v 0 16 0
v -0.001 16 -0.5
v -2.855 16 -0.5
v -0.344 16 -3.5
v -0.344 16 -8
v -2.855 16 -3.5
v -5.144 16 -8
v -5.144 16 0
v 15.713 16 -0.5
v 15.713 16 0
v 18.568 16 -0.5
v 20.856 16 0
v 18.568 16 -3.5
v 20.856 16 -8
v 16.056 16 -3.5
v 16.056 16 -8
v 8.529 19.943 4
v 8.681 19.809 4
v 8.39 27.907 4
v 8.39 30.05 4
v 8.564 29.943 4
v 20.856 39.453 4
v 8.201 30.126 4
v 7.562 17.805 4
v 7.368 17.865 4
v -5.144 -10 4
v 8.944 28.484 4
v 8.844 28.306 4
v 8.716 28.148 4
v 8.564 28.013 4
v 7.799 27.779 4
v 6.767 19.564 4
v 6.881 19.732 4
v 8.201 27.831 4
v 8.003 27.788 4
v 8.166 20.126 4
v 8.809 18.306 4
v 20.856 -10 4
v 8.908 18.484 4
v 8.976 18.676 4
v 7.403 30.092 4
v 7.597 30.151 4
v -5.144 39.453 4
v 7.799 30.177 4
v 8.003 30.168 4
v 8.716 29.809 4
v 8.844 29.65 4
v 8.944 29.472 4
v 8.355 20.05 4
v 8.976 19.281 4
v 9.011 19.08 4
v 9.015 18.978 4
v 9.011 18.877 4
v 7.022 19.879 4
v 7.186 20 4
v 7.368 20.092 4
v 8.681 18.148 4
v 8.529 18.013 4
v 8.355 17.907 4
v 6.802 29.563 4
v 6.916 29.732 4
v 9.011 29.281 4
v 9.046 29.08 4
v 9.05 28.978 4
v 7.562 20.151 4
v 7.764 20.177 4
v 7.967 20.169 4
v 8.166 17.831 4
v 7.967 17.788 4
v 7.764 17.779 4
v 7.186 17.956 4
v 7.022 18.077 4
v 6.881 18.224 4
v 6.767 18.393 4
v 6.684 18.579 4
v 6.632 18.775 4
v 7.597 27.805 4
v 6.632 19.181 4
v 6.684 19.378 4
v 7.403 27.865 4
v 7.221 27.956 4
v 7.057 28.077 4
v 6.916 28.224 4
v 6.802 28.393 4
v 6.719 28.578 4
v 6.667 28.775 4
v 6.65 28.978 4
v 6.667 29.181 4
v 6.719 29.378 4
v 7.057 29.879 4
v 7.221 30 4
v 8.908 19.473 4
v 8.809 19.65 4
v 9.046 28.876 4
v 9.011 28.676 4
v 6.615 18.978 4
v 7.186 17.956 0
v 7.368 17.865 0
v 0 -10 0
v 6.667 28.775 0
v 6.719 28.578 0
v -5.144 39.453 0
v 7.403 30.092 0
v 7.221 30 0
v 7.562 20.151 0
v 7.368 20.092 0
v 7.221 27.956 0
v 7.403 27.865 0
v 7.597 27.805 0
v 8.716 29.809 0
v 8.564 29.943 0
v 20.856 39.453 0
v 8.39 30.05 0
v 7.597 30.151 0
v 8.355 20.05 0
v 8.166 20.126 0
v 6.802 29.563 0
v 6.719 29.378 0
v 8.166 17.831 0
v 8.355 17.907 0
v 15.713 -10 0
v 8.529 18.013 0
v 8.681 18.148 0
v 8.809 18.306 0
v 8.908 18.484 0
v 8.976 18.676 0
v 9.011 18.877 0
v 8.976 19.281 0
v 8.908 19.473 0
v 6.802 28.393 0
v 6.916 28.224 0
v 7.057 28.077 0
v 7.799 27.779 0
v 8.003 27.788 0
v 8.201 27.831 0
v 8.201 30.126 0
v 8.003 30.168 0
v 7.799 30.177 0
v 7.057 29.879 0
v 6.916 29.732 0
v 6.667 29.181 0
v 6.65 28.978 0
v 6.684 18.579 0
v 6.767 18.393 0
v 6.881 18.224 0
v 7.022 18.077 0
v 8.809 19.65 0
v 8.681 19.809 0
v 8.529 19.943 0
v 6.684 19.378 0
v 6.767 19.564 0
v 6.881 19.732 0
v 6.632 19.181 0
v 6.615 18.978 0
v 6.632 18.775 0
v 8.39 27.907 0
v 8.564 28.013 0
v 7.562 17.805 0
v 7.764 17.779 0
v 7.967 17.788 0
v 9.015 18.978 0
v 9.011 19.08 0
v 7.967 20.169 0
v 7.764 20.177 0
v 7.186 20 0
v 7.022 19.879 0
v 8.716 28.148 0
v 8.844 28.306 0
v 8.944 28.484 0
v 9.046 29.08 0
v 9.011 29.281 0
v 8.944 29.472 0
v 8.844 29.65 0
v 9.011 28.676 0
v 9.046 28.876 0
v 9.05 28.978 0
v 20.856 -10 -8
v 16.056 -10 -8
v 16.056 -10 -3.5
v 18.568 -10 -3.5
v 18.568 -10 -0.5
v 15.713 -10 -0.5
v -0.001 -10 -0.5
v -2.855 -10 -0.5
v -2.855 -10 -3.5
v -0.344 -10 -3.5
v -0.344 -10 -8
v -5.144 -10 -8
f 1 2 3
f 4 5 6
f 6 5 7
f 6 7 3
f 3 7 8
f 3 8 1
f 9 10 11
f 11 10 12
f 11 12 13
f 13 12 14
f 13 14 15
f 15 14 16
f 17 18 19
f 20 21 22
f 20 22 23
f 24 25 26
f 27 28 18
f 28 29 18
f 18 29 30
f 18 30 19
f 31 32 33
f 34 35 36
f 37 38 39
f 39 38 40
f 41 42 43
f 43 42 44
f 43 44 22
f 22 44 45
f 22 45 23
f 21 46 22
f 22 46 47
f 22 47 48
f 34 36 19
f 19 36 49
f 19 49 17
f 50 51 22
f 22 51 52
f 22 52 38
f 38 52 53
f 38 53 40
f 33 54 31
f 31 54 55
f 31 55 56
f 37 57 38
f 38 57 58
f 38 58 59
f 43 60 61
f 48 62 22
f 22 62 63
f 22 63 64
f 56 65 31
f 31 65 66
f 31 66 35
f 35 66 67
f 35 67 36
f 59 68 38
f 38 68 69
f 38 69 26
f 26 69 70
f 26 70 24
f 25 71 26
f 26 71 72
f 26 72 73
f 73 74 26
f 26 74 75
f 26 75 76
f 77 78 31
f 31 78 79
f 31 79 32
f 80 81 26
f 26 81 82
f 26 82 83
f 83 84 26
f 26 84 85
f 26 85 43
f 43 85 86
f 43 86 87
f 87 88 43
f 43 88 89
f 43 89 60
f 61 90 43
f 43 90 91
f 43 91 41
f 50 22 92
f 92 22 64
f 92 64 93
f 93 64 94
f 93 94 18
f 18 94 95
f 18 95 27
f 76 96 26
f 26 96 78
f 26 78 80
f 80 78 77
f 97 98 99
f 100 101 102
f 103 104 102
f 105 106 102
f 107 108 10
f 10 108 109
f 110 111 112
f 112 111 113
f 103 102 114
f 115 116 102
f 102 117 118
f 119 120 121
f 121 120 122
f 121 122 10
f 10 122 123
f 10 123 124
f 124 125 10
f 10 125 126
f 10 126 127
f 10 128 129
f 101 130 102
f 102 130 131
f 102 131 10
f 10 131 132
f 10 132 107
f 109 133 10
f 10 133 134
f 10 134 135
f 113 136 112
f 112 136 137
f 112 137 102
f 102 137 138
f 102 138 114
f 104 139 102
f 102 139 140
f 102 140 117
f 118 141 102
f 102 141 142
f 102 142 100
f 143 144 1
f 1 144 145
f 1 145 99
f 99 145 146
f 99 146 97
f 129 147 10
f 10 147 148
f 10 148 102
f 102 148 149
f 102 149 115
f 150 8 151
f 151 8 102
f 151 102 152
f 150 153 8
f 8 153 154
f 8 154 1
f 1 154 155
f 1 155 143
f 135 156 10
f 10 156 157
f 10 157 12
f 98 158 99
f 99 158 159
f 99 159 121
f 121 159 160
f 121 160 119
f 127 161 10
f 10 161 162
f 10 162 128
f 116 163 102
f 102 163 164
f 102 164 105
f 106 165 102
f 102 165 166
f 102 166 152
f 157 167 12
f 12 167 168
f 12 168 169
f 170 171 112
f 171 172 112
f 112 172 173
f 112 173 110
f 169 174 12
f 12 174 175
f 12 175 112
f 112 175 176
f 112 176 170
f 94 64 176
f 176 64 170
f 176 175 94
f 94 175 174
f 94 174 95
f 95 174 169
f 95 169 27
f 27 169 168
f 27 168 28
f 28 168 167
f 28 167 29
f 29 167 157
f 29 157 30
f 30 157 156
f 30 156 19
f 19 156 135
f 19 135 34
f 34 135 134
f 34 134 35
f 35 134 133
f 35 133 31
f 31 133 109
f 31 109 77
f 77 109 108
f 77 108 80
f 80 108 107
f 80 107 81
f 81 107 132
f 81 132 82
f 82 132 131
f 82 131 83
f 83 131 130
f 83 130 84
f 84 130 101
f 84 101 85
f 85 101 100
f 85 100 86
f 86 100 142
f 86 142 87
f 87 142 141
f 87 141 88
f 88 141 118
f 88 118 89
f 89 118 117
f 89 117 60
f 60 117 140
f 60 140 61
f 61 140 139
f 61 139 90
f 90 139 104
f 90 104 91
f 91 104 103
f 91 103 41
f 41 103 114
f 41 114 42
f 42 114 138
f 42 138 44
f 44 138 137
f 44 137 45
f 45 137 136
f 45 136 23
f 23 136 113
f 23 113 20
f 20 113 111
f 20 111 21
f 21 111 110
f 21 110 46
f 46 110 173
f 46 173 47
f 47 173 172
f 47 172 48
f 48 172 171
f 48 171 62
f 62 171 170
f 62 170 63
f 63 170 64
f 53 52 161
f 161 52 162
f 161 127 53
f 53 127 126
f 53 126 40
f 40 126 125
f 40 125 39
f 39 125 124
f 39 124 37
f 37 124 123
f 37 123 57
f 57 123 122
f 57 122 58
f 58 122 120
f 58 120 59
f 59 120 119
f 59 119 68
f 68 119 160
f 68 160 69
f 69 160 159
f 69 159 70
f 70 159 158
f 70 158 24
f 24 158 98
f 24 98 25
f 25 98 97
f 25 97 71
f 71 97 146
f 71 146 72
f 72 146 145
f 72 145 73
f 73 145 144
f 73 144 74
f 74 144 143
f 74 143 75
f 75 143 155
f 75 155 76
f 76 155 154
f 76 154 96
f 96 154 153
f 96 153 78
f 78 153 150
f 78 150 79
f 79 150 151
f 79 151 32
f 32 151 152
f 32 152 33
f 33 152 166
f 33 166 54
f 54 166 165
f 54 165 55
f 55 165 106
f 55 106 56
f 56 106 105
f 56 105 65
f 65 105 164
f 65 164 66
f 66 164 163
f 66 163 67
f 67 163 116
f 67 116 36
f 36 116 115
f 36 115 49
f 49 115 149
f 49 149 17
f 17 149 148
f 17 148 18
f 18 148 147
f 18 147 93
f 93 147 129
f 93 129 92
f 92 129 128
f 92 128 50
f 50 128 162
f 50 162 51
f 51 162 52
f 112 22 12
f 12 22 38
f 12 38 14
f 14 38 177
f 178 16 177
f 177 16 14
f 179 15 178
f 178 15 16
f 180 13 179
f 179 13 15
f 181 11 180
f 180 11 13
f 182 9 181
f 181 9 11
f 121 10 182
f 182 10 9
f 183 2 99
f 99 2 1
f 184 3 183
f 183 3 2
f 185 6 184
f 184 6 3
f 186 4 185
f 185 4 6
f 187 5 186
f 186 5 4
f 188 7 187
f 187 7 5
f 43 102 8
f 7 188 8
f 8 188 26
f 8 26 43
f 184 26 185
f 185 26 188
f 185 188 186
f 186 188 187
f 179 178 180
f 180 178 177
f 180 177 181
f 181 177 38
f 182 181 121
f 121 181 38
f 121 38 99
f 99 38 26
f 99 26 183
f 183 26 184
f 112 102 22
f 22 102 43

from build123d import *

# Parameters (mm, degrees)
ESQUISSE1_W             = 15.712671493
ESQUISSE1_H             = 32.57240809
ESQUISSE1_R             = 1.2
BOSS_EXTRU_1_DEPTH      = 4
BOSS_EXTRU_2_DEPTH      = 10
BOSS_EXTRU_2_DEPTH_BACK = 16
BOSS_EXTRU_4_DEPTH      = 4


with BuildPart() as part:
    # Esquisse1 → Boss.-Extru.1 (new body)
    with BuildSketch(Plane.XY):
        with Locations((7.856335747, 16.286204045)):
            Rectangle(ESQUISSE1_W, ESQUISSE1_H)
        with Locations((7.85, 28.978207996)):
            Circle(ESQUISSE1_R, mode=Mode.SUBTRACT)
        with Locations((7.814879524, 18.978269669)):
            Circle(ESQUISSE1_R, mode=Mode.SUBTRACT)
    extrude(amount=BOSS_EXTRU_1_DEPTH)

    # Esquisse2 → Boss.-Extru.2 (add, two sides: drawn at the far end of the back side and taken through both)
    with BuildSketch(Plane.XZ.offset(-BOSS_EXTRU_2_DEPTH_BACK)):
        Polygon((-5.143664254, 4), (20.856335746, 4), (20.856335746, -8), (16.056335746, -8), (16.056335746, -3.5), (18.56763753, -3.5), (18.56763753, -0.5), (15.713373902, -0.5), (15.712671493, 0), (0, 0), (-0.00070241, -0.5), (-2.854966038, -0.5), (-2.854966038, -3.5), (-0.343664254, -3.5), (-0.343664254, -8), (-5.143664254, -8), align=None)
    extrude(amount=BOSS_EXTRU_2_DEPTH + BOSS_EXTRU_2_DEPTH_BACK)

    # Esquisse4 → Boss.-Extru.4 (add)
    with BuildSketch(Plane.XY.offset(4)):
        Polygon((0, 16), (-5.143664254, 16), (-5.143664254, 39.452985167), (20.856335746, 39.452985167), (20.856335746, 16), (15.712671493, 16), (14.344424764, 16), (14.344424764, 31.44629888), (1.552132881, 31.44629888), (1.552132881, 16), align=None)
    extrude(amount=-BOSS_EXTRU_4_DEPTH)


solid = part.part
